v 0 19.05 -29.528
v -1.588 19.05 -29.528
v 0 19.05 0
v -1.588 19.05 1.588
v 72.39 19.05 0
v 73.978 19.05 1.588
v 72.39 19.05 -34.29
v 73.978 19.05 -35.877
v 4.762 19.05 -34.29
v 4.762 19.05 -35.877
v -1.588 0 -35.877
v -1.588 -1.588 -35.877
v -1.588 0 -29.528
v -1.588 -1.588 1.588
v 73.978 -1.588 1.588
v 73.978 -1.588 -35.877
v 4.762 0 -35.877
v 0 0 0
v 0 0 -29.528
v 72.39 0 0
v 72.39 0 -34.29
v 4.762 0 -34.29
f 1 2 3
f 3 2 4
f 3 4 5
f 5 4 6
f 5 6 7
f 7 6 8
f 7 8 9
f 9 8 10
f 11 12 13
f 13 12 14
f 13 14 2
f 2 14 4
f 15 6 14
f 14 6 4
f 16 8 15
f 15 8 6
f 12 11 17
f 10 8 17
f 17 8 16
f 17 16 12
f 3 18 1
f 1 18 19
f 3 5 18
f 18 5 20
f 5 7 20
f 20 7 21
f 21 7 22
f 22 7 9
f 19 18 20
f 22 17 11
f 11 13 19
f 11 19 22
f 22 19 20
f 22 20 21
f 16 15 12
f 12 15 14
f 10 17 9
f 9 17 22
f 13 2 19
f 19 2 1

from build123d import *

# Parameters (mm, degrees)
SKETCH1_W           = 75.565
SKETCH1_H           = 37.465
SKETCH1_W_2         = 72.39
SKETCH1_H_2         = 34.29
BOSS_EXTRUDE1_DEPTH = 19.05
SKETCH2_W           = 75.565
SKETCH2_H           = 37.465
BOSS_EXTRUDE2_DEPTH = 1.5875
SKETCH3_W           = 6.35
SKETCH3_H           = 6.35
CUT_EXTRUDE1_DEPTH  = 19.05


with BuildPart() as part:
    # Sketch1 → Boss-Extrude1 (new body)
    with BuildSketch(Plane(origin=(0, 0, 0), x_dir=(1, 0, 0), z_dir=(0, 1, 0))):
        with Locations((36.195, 17.145)):
            Rectangle(SKETCH1_W, SKETCH1_H)
        with Locations((36.195, 17.145)):
            Rectangle(SKETCH1_W_2, SKETCH1_H_2, mode=Mode.SUBTRACT)
    extrude(amount=BOSS_EXTRUDE1_DEPTH)

    # Sketch2 → Boss-Extrude2 (add)
    with BuildSketch(Plane.XZ):
        with Locations((36.195, -17.145)):
            Rectangle(SKETCH2_W, SKETCH2_H)
    extrude(amount=BOSS_EXTRUDE2_DEPTH)

    # Sketch3 → Cut-Extrude1 (cut)
    with BuildSketch(Plane(origin=(0, 19.05, 0), x_dir=(1, 0, 0), z_dir=(0, 1, 0))):
        with Locations((1.5875, 32.7025)):
            Rectangle(SKETCH3_W, SKETCH3_H)
    extrude(amount=-CUT_EXTRUDE1_DEPTH, mode=Mode.SUBTRACT)


solid = part.part
